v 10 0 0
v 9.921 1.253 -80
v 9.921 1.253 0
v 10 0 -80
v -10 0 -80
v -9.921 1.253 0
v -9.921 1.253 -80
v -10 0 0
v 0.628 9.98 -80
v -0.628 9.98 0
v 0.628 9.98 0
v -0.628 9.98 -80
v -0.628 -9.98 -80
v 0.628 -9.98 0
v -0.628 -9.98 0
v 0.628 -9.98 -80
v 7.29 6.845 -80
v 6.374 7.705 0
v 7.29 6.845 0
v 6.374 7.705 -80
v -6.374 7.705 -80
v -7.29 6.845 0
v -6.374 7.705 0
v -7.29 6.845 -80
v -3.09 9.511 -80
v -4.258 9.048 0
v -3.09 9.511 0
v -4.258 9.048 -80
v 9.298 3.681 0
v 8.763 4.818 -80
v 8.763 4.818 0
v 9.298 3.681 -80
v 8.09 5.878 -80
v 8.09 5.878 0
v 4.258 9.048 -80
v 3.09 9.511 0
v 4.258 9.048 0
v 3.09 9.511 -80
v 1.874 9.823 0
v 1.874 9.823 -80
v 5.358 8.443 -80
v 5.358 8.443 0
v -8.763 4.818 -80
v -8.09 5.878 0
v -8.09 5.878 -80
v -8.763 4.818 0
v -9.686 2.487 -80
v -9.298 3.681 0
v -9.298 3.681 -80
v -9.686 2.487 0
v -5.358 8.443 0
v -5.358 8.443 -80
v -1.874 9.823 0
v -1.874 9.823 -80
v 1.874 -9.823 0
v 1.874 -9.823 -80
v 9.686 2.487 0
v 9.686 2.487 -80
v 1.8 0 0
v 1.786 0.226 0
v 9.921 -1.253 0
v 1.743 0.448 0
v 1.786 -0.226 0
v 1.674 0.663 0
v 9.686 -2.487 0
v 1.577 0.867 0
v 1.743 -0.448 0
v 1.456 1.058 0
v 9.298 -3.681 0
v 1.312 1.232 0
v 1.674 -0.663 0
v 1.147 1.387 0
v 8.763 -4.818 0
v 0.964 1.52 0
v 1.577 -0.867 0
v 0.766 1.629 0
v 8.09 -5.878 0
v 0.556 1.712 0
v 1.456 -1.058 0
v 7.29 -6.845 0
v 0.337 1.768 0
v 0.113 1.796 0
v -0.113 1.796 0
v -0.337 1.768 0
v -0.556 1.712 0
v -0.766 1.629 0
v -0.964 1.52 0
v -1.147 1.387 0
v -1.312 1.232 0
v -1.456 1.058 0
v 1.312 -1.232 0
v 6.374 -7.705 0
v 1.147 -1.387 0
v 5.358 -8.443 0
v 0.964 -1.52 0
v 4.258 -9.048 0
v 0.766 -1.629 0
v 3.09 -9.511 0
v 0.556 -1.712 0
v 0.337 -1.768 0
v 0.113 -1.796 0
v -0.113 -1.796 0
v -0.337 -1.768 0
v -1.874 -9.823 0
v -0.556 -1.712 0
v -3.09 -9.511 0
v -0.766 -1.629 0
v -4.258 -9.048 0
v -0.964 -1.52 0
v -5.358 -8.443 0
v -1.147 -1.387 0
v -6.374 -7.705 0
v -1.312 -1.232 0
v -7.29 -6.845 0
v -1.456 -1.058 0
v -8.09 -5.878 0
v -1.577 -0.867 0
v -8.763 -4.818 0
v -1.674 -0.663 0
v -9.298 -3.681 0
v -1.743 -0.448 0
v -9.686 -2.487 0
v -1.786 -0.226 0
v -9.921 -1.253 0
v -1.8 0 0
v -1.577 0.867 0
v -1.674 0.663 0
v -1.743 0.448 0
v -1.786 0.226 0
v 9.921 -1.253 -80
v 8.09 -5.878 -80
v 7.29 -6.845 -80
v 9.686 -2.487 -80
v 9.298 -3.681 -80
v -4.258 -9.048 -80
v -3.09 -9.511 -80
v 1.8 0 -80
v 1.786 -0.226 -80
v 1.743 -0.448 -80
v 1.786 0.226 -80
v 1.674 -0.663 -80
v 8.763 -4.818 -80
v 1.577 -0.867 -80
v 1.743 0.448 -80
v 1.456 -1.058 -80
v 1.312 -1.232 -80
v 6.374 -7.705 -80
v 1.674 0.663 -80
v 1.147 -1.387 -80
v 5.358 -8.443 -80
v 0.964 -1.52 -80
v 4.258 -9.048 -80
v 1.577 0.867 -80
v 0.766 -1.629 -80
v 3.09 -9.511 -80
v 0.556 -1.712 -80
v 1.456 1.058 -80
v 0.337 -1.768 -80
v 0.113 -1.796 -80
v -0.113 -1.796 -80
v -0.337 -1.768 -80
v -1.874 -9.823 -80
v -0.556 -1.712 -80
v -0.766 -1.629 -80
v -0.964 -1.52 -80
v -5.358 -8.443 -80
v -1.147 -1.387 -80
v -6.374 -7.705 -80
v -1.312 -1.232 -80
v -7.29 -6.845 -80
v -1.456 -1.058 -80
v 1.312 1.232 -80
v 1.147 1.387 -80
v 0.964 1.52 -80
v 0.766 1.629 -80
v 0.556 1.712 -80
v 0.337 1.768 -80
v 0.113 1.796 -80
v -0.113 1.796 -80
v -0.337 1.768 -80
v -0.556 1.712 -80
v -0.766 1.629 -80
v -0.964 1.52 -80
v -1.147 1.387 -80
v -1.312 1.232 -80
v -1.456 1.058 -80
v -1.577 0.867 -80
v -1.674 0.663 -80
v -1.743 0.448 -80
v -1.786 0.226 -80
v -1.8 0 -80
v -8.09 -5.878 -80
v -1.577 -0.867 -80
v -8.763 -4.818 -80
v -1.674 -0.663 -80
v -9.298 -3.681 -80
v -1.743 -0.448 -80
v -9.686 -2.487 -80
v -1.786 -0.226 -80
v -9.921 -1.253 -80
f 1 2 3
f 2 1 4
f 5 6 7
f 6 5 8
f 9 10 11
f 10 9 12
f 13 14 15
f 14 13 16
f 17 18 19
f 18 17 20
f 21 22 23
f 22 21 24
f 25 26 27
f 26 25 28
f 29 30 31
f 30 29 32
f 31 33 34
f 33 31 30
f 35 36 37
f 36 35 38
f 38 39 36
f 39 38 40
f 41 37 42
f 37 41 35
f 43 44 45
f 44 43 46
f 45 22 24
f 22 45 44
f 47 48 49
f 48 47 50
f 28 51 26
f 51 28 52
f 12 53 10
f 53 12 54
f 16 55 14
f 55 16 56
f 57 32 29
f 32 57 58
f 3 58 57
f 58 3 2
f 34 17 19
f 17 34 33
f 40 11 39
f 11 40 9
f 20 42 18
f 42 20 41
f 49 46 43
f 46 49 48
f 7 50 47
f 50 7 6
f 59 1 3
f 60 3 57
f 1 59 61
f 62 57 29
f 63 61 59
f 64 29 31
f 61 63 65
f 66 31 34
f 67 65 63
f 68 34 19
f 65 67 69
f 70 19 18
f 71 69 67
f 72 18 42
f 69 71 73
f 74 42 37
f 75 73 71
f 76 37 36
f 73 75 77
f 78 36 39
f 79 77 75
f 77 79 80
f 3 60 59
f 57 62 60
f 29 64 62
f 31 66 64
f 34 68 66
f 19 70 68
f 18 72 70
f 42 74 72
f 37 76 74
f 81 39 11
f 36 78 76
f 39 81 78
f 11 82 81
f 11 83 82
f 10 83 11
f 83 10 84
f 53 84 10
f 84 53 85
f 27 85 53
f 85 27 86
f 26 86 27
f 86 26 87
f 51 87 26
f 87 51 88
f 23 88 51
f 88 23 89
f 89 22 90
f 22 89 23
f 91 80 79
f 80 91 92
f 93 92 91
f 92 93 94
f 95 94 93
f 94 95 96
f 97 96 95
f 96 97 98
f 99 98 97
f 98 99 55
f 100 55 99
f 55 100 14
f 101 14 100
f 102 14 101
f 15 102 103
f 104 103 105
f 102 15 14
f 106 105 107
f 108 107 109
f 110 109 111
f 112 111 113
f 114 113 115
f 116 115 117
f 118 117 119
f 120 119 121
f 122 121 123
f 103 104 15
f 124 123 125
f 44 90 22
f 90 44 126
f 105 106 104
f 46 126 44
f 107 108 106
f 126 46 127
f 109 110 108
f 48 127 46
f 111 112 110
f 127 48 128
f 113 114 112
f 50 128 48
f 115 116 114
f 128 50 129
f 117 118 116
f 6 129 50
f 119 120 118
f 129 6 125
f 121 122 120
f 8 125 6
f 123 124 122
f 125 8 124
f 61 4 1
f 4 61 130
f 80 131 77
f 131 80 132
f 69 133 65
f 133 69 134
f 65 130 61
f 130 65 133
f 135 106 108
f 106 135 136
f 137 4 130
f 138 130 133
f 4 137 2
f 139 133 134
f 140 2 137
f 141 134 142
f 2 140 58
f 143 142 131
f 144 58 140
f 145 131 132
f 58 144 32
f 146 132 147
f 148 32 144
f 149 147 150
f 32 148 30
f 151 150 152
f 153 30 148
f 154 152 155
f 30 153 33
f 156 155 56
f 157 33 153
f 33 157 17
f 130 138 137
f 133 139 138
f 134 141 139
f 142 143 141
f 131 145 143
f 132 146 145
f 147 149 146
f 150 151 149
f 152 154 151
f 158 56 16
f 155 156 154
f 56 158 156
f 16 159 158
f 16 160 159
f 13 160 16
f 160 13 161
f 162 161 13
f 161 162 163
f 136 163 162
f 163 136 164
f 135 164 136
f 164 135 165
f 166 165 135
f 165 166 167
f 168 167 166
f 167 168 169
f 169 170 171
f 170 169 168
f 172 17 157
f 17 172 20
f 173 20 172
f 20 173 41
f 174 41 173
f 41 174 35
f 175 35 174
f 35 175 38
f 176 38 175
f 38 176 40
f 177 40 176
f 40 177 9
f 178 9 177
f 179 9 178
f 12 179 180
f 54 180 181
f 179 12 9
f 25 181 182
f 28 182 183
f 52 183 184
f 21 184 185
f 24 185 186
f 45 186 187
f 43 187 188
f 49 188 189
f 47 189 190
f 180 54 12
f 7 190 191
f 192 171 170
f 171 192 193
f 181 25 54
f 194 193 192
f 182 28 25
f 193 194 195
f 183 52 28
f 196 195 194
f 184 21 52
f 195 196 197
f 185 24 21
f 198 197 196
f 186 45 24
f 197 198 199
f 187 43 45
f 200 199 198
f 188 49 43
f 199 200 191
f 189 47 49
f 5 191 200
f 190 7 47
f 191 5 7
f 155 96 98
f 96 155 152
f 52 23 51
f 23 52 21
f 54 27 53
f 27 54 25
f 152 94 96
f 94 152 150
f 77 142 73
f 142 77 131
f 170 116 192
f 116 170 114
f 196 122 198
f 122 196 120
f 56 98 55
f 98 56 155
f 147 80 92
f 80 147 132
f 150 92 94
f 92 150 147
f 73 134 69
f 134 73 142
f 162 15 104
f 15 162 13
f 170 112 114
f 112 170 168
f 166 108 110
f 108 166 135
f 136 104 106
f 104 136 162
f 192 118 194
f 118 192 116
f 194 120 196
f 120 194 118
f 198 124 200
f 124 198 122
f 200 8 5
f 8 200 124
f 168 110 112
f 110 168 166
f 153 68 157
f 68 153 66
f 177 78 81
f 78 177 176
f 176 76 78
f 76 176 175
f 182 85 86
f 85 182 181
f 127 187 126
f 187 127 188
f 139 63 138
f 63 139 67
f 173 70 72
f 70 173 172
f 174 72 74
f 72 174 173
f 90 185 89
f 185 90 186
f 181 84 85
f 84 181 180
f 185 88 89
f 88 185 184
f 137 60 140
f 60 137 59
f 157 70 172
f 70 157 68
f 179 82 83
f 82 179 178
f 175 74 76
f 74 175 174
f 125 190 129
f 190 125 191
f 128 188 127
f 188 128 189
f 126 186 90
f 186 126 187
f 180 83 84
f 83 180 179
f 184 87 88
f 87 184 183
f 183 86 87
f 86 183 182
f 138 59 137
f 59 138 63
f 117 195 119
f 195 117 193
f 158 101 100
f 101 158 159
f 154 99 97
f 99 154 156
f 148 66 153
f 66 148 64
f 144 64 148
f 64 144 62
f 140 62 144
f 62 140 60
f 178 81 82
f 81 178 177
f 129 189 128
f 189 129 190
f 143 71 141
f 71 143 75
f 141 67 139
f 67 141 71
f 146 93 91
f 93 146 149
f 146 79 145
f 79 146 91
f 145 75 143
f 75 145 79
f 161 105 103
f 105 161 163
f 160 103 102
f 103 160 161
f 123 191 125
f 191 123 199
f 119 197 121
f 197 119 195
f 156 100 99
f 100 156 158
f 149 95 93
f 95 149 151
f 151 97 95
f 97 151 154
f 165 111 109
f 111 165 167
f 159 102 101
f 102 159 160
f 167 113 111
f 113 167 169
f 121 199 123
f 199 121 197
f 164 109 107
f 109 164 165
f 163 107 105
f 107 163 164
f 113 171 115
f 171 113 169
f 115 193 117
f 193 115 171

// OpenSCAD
$fn = 50;


difference() {
	union() {
		translate(v = [0, 0, -80.0000000000]) {
			cylinder(h = 80, r = 10.0000000000);
		}
		cylinder(h = 0, r = 16.0000000000);
	}
	union() {
		#translate(v = [0, 0, -80]) {
			cylinder(h = 80, r = 1.8000000000);
		}
	}
}
